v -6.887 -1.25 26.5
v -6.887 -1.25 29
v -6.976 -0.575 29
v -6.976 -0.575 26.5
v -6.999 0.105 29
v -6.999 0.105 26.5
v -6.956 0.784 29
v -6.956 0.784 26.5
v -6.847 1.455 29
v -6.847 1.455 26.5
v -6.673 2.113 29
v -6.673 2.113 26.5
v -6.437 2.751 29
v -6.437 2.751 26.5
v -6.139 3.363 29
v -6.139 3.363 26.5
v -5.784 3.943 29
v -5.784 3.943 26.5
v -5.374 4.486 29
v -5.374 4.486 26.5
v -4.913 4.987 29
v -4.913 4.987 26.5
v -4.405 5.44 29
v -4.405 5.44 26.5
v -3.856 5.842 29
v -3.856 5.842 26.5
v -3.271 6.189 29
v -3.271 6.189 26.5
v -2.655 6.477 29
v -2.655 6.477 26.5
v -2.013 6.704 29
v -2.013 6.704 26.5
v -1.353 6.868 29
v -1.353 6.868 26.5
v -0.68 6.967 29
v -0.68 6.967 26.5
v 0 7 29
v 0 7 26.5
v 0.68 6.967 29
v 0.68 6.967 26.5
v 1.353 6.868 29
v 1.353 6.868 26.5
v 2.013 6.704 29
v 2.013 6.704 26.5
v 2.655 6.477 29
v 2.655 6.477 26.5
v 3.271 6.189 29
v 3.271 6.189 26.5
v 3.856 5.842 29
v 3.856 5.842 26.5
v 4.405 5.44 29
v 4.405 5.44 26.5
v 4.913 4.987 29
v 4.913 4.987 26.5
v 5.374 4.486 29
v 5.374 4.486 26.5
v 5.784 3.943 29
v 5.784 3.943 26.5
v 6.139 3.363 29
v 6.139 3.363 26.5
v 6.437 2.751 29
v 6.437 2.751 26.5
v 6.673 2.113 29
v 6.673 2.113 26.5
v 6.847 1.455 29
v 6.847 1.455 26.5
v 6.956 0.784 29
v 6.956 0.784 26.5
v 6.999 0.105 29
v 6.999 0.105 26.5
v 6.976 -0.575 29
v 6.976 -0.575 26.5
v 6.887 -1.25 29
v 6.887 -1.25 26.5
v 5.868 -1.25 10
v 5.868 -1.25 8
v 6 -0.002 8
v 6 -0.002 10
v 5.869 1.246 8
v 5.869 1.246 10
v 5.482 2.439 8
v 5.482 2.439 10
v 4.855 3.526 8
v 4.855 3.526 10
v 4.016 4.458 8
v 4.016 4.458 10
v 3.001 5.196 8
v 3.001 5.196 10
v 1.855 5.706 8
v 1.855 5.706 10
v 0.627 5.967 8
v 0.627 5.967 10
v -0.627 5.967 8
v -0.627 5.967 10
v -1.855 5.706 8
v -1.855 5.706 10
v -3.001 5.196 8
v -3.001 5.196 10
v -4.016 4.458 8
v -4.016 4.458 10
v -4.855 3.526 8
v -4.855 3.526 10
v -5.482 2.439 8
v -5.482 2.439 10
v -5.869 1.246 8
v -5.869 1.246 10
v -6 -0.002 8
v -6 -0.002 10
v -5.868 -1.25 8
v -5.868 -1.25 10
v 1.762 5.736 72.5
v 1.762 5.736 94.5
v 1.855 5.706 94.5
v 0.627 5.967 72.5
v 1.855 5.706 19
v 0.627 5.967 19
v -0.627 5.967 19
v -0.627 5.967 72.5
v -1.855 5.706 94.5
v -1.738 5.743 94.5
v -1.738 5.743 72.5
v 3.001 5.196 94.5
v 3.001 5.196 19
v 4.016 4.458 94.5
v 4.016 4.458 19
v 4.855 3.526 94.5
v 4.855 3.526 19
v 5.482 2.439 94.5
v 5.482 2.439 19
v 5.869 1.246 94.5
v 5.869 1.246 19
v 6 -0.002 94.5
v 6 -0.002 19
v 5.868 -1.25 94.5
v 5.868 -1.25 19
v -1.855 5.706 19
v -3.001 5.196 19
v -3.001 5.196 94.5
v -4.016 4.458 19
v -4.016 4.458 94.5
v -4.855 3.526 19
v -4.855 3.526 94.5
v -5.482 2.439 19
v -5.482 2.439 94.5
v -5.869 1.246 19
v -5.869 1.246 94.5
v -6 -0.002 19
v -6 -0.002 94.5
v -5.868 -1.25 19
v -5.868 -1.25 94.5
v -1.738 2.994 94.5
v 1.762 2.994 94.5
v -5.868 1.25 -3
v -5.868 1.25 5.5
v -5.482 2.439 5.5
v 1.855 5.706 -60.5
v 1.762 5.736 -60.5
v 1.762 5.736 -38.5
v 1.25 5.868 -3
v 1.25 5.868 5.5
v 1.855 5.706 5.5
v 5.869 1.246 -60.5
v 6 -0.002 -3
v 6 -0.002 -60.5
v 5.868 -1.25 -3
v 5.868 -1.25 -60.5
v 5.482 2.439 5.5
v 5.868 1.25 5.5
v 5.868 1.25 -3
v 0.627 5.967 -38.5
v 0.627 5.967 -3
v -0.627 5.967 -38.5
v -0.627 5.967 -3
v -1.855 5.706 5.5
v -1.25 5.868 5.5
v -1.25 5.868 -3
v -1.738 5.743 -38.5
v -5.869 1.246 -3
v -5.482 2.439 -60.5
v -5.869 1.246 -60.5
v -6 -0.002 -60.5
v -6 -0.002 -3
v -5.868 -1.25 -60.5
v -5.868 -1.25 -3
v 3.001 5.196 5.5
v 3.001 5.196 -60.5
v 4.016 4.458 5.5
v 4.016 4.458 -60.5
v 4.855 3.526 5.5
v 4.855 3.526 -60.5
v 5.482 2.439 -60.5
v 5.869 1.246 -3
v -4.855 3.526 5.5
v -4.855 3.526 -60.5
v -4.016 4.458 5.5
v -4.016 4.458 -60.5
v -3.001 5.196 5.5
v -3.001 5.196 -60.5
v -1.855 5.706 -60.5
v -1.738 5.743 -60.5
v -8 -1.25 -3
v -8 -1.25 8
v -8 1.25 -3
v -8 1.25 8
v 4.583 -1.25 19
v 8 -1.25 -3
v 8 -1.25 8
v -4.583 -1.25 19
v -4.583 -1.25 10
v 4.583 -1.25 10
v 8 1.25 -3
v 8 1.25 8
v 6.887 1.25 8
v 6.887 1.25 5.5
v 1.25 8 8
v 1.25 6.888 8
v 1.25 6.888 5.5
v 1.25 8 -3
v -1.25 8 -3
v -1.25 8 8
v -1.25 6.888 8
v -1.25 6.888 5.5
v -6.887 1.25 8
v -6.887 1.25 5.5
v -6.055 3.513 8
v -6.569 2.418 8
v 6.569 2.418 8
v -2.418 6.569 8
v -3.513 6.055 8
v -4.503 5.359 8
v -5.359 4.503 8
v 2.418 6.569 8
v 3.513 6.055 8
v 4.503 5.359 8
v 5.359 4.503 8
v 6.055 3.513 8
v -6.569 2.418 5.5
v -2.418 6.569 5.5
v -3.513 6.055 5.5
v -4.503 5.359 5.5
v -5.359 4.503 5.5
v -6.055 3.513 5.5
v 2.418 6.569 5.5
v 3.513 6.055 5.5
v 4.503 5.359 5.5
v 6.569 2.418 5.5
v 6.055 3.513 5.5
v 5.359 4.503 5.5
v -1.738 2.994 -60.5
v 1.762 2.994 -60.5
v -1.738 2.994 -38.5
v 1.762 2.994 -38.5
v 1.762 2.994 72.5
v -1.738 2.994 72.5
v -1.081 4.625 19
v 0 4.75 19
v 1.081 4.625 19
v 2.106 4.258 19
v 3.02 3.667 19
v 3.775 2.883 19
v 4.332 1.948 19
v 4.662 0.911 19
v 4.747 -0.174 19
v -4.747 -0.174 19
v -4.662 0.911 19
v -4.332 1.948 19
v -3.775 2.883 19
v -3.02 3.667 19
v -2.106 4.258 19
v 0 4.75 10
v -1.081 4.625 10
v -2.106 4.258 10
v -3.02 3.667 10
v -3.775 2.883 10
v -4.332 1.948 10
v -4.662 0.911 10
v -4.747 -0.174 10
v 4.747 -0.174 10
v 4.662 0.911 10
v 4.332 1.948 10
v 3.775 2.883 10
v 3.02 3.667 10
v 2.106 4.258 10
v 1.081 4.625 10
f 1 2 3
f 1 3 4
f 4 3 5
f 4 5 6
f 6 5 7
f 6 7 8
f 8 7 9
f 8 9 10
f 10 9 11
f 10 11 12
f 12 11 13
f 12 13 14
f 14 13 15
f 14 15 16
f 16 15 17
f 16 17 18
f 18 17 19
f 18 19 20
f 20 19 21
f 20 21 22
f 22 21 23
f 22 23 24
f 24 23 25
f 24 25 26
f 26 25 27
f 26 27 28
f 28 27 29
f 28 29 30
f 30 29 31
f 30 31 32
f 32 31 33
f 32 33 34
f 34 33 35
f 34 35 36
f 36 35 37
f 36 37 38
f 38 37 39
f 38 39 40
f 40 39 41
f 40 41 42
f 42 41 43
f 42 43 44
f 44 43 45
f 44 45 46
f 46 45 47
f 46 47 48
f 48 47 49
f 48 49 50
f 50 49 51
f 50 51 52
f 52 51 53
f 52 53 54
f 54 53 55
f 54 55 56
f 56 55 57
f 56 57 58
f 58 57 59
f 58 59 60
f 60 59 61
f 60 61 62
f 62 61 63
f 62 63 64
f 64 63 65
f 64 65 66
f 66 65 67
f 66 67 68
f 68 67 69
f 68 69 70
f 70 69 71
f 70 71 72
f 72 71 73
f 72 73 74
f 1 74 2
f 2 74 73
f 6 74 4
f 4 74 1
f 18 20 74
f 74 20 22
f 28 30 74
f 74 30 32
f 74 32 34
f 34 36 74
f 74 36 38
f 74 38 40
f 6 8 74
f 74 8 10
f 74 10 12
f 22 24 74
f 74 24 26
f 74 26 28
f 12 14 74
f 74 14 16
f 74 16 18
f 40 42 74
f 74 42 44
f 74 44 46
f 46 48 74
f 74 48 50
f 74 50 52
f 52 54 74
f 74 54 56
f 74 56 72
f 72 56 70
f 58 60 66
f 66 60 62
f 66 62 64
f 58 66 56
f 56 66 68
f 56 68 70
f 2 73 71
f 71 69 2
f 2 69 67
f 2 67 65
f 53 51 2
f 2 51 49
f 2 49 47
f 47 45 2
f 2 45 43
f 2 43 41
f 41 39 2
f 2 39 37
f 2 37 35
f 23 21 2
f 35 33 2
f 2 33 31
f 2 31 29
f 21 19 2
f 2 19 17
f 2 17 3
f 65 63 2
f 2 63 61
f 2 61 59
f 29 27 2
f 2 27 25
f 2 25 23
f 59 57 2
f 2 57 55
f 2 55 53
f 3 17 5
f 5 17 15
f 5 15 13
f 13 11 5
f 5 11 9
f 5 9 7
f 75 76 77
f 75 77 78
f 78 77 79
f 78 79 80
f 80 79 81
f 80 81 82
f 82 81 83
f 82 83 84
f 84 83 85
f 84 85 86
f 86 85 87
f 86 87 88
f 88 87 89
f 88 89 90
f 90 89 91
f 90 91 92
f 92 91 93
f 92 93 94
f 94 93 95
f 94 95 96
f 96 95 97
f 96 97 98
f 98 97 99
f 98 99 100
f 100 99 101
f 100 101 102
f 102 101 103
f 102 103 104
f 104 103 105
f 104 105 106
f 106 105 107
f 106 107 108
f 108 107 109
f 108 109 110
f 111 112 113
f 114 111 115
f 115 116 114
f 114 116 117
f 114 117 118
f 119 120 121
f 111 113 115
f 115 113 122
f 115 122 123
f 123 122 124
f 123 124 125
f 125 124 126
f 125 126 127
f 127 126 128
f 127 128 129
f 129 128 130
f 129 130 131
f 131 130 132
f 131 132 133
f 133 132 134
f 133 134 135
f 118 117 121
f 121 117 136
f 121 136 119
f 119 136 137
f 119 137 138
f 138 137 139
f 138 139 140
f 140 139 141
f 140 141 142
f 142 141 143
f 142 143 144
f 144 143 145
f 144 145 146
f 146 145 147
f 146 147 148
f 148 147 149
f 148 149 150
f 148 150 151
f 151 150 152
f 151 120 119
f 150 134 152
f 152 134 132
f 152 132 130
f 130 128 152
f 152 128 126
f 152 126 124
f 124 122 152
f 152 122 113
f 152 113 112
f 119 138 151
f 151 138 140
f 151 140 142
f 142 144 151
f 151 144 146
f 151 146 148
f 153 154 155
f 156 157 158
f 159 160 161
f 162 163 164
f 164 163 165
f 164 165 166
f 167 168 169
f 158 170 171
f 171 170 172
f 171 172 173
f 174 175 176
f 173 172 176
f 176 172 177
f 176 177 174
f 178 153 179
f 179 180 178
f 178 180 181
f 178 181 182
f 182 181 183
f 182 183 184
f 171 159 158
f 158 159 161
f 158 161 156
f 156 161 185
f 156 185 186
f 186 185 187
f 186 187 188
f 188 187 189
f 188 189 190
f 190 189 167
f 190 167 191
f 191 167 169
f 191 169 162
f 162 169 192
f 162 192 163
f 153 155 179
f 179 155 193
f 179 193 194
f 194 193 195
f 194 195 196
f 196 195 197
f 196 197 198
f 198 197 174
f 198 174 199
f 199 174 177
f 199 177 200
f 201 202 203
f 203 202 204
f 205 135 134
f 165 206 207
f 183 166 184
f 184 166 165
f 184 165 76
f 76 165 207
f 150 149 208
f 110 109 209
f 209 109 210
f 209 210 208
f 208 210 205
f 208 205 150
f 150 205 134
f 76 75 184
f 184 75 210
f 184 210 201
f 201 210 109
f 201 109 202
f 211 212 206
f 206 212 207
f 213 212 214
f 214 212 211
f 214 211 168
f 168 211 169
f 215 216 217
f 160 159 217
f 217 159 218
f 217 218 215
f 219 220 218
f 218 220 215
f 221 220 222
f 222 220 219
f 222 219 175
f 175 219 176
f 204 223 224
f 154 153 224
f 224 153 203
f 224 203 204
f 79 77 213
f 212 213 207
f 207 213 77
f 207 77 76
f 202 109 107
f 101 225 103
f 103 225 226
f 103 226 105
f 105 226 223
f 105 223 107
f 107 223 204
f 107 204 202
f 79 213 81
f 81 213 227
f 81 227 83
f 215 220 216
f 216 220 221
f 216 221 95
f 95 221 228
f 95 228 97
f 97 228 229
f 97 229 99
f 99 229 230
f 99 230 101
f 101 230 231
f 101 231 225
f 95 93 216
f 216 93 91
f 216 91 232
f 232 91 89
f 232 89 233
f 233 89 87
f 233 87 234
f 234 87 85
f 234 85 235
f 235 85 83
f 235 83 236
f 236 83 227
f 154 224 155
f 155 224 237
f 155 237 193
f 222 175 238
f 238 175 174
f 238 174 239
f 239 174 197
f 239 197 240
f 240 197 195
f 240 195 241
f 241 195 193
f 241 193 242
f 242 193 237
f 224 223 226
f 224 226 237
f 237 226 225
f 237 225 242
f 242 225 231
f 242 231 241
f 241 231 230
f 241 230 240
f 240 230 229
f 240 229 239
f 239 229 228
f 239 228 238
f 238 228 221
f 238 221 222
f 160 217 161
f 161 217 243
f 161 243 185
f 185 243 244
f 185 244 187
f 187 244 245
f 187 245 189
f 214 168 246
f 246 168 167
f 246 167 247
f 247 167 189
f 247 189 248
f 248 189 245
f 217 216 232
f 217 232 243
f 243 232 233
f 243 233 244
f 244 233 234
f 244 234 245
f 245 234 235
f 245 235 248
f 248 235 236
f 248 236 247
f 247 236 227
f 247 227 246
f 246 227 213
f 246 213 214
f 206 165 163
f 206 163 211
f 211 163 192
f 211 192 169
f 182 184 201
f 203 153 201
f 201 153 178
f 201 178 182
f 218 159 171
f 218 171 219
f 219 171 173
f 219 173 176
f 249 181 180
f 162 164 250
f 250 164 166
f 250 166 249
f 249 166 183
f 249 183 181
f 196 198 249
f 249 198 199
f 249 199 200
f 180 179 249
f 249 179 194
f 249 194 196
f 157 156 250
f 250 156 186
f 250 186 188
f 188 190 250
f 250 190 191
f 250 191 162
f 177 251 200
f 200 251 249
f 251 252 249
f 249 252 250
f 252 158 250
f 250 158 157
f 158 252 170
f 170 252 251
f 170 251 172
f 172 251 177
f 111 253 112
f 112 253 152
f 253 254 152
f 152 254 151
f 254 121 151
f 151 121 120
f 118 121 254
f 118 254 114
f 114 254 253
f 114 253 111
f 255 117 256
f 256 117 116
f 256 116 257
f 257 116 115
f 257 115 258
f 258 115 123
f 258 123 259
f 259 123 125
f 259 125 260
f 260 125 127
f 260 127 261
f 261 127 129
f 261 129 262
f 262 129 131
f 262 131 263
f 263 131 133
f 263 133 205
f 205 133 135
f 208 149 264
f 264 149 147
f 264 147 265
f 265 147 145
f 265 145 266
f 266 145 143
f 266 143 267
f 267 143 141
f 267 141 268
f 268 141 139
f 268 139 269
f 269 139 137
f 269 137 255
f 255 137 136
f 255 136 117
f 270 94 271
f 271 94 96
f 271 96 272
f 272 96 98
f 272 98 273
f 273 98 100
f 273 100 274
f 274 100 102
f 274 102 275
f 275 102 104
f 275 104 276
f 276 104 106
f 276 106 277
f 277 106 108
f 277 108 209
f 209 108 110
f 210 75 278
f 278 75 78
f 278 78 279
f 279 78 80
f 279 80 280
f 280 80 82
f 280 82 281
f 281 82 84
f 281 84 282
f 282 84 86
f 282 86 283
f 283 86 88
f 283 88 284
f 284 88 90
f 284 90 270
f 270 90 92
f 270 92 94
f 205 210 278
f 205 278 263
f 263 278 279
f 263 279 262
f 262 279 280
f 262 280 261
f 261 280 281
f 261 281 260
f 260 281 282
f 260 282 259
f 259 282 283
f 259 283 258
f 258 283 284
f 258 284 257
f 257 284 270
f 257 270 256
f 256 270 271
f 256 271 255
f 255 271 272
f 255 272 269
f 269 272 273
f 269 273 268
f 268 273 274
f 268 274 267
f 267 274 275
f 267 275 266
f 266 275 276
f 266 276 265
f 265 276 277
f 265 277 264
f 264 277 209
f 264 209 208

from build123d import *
from build123d.topology import SkipClean

# Parameters (mm, degrees)
BOSS_EXTRUDE1_DEPTH = 8
BOSS_EXTRUDE2_DEPTH = 26
BOSS_EXTRUDE3_DEPTH = 2.5
BOSS_EXTRUDE4_START = -5
BOSS_EXTRUDE4_DEPTH = 2.5
BOSS_EXTRUDE5_START = 8
BOSS_EXTRUDE5_DEPTH = 8
SKETCH12_W          = 2.5
SKETCH12_H          = 2.131652703
SKETCH12_W_2        = 2.131652703
SKETCH12_H_2        = 2.5
BOSS_EXTRUDE6_DEPTH = 3
BOSS_EXTRUDE7_DEPTH = 60.5
BOSS_EXTRUDE8_START = 52.5
BOSS_EXTRUDE8_DEPTH = 52.5
CUT_EXTRUDE1_DEPTH  = 22
CUT_EXTRUDE2_START  = 2
CUT_EXTRUDE2_DEPTH  = 9


with BuildPart() as part:
    # Sketch1 → Boss-Extrude1 (new body)
    with BuildSketch(Plane.XY):
        with BuildLine():
            Line((8, 1.25), (5.868347297, 1.25))
            ThreePointArc((5.868347297, 1.25), (4.242640687, 4.242640687), (1.25, 5.868347297))
            Line((1.25, 5.868347297), (1.25, 8))
            Line((1.25, 8), (-1.25, 8))
            Line((-1.25, 8), (-1.25, 5.868347297))
            ThreePointArc((-1.25, 5.868347297), (-4.242640687, 4.242640687), (-5.868347297, 1.25))
            Line((-5.868347297, 1.25), (-8, 1.25))
            Line((-8, 1.25), (-8, -1.25))
            Line((-8, -1.25), (8, -1.25))
            Line((8, -1.25), (8, 1.25))
        make_face()
    extrude(amount=BOSS_EXTRUDE1_DEPTH)

    # Sketch3 → Boss-Extrude2 (add)
    with BuildSketch(Plane.XY.offset(8)):
        with BuildLine():
            Line((-5.868347297, -1.25), (5.868347297, -1.25))
            ThreePointArc((5.868347297, -1.25), (0, 6), (-5.868347297, -1.25))
        make_face()
    extrude(amount=BOSS_EXTRUDE2_DEPTH)

    # Sketch5 → Boss-Extrude3 (add)
    with BuildSketch(Plane.XY.offset(8)):
        with BuildLine():
            Line((-6.887488657, -1.25), (6.887488657, -1.25))
            ThreePointArc((6.887488657, -1.25), (0, 7), (-6.887488657, -1.25))
        make_face()
    extrude(amount=-BOSS_EXTRUDE3_DEPTH)

    # Sketch10 → Boss-Extrude5 (add)
    with SkipClean():  # the faces are left unmerged after this step: merging them gives an invalid solid
        with BuildSketch(Plane(origin=(0, 0, 0), x_dir=(-1, 0, 0), z_dir=(0, 0, -1)).offset(BOSS_EXTRUDE5_START)):
            with BuildLine():
                Line((-5.868347297, -1.25), (5.868347297, -1.25))
                ThreePointArc((5.868347297, -1.25), (0, 6), (-5.868347297, -1.25))
            make_face()
        extrude(amount=-BOSS_EXTRUDE5_DEPTH)

    # Sketch12 → Boss-Extrude6 (add)
    with SkipClean():  # the faces are left unmerged after this step: merging them gives an invalid solid
        with BuildSketch(Plane(origin=(0, 0, 0), x_dir=(-1, 0, 0), z_dir=(0, 0, -1))):
            with Locations((0, 6.934173648)):
                Rectangle(SKETCH12_W, SKETCH12_H)
            with Locations((6.934173648, 0)):
                Rectangle(SKETCH12_W_2, SKETCH12_H_2)
            with Locations((-6.934173648, 0)):
                Rectangle(SKETCH12_W_2, SKETCH12_H_2)
        extrude(amount=BOSS_EXTRUDE6_DEPTH)

    # Sketch14 → Boss-Extrude7 (add)
    with SkipClean():  # the faces are left unmerged after this step: merging them gives an invalid solid
        with BuildSketch(Plane.XY.offset(34)):
            with BuildLine():
                Line((-5.868347297, -1.25), (5.868347297, -1.25))
                ThreePointArc((5.868347297, -1.25), (0, 6), (-5.868347297, -1.25))
            make_face()
        extrude(amount=BOSS_EXTRUDE7_DEPTH)

    # Sketch15 → Boss-Extrude8 (add)
    with SkipClean():  # the faces are left unmerged after this step: merging them gives an invalid solid
        with BuildSketch(Plane(origin=(0, 0, -8), x_dir=(-1, 0, 0), z_dir=(0, 0, -1)).offset(BOSS_EXTRUDE8_START)):
            with BuildLine():
                Line((-5.868347297, -1.25), (5.868347297, -1.25))
                ThreePointArc((5.868347297, -1.25), (0, 6), (-5.868347297, -1.25))
            make_face()
        extrude(amount=-BOSS_EXTRUDE8_DEPTH)

    # Sketch16 → Cut-Extrude1 (cut)
    with SkipClean():  # the faces are left unmerged after this step: merging them gives an invalid solid
        with BuildSketch(Plane(origin=(0, 0, -60.5), x_dir=(-1, 0, 0), z_dir=(0, 0, -1))):
            with BuildLine():
                Line((-1.762062123, 5.735428238), (-1.762062123, 2.994133291))
                Line((-1.762062123, 2.994133291), (1.737937877, 2.994133291))
                Line((1.737937877, 2.994133291), (1.737937877, 5.742784336))
                ThreePointArc((1.737937877, 5.742784336), (-0.012610426, 5.999986748), (-1.762062123, 5.735428238))
            make_face()
        cut_extrude1 = extrude(amount=-CUT_EXTRUDE1_DEPTH, mode=Mode.SUBTRACT)

    # Mirror1: Cut-Extrude1 across plane
    with SkipClean():  # the faces are left unmerged after this step: merging them gives an invalid solid
        add(cut_extrude1.mirror(Plane.XY.offset(17)), mode=Mode.SUBTRACT)

    # Sketch17 → Cut-Extrude2 (cut)
    with SkipClean():  # the faces are left unmerged after this step: merging them gives an invalid solid
        with BuildSketch(Plane.XY.offset(8).offset(CUT_EXTRUDE2_START)):
            with BuildLine():
                Line((-9.528418517, -1.25), (-4.582575695, -1.25))
                ThreePointArc((-4.582575695, -1.25), (0, 4.75), (4.582575695, -1.25))
                Line((4.582575695, -1.25), (9.528418517, -1.25))
                ThreePointArc((9.528418517, -1.25), (0, 9.610060324), (-9.528418517, -1.25))
            make_face()
        extrude(amount=CUT_EXTRUDE2_DEPTH, mode=Mode.SUBTRACT)


with BuildPart() as body_2:
    # Sketch9 → Boss-Extrude4 (new body)
    with BuildSketch(Plane.XY.offset(34).offset(BOSS_EXTRUDE4_START)):
        with BuildLine():
            Line((-6.887488657, -1.25), (6.887488657, -1.25))
            ThreePointArc((6.887488657, -1.25), (0, 7), (-6.887488657, -1.25))
        make_face()
    extrude(amount=-BOSS_EXTRUDE4_DEPTH)


solid = Compound([part.part, body_2.part])
